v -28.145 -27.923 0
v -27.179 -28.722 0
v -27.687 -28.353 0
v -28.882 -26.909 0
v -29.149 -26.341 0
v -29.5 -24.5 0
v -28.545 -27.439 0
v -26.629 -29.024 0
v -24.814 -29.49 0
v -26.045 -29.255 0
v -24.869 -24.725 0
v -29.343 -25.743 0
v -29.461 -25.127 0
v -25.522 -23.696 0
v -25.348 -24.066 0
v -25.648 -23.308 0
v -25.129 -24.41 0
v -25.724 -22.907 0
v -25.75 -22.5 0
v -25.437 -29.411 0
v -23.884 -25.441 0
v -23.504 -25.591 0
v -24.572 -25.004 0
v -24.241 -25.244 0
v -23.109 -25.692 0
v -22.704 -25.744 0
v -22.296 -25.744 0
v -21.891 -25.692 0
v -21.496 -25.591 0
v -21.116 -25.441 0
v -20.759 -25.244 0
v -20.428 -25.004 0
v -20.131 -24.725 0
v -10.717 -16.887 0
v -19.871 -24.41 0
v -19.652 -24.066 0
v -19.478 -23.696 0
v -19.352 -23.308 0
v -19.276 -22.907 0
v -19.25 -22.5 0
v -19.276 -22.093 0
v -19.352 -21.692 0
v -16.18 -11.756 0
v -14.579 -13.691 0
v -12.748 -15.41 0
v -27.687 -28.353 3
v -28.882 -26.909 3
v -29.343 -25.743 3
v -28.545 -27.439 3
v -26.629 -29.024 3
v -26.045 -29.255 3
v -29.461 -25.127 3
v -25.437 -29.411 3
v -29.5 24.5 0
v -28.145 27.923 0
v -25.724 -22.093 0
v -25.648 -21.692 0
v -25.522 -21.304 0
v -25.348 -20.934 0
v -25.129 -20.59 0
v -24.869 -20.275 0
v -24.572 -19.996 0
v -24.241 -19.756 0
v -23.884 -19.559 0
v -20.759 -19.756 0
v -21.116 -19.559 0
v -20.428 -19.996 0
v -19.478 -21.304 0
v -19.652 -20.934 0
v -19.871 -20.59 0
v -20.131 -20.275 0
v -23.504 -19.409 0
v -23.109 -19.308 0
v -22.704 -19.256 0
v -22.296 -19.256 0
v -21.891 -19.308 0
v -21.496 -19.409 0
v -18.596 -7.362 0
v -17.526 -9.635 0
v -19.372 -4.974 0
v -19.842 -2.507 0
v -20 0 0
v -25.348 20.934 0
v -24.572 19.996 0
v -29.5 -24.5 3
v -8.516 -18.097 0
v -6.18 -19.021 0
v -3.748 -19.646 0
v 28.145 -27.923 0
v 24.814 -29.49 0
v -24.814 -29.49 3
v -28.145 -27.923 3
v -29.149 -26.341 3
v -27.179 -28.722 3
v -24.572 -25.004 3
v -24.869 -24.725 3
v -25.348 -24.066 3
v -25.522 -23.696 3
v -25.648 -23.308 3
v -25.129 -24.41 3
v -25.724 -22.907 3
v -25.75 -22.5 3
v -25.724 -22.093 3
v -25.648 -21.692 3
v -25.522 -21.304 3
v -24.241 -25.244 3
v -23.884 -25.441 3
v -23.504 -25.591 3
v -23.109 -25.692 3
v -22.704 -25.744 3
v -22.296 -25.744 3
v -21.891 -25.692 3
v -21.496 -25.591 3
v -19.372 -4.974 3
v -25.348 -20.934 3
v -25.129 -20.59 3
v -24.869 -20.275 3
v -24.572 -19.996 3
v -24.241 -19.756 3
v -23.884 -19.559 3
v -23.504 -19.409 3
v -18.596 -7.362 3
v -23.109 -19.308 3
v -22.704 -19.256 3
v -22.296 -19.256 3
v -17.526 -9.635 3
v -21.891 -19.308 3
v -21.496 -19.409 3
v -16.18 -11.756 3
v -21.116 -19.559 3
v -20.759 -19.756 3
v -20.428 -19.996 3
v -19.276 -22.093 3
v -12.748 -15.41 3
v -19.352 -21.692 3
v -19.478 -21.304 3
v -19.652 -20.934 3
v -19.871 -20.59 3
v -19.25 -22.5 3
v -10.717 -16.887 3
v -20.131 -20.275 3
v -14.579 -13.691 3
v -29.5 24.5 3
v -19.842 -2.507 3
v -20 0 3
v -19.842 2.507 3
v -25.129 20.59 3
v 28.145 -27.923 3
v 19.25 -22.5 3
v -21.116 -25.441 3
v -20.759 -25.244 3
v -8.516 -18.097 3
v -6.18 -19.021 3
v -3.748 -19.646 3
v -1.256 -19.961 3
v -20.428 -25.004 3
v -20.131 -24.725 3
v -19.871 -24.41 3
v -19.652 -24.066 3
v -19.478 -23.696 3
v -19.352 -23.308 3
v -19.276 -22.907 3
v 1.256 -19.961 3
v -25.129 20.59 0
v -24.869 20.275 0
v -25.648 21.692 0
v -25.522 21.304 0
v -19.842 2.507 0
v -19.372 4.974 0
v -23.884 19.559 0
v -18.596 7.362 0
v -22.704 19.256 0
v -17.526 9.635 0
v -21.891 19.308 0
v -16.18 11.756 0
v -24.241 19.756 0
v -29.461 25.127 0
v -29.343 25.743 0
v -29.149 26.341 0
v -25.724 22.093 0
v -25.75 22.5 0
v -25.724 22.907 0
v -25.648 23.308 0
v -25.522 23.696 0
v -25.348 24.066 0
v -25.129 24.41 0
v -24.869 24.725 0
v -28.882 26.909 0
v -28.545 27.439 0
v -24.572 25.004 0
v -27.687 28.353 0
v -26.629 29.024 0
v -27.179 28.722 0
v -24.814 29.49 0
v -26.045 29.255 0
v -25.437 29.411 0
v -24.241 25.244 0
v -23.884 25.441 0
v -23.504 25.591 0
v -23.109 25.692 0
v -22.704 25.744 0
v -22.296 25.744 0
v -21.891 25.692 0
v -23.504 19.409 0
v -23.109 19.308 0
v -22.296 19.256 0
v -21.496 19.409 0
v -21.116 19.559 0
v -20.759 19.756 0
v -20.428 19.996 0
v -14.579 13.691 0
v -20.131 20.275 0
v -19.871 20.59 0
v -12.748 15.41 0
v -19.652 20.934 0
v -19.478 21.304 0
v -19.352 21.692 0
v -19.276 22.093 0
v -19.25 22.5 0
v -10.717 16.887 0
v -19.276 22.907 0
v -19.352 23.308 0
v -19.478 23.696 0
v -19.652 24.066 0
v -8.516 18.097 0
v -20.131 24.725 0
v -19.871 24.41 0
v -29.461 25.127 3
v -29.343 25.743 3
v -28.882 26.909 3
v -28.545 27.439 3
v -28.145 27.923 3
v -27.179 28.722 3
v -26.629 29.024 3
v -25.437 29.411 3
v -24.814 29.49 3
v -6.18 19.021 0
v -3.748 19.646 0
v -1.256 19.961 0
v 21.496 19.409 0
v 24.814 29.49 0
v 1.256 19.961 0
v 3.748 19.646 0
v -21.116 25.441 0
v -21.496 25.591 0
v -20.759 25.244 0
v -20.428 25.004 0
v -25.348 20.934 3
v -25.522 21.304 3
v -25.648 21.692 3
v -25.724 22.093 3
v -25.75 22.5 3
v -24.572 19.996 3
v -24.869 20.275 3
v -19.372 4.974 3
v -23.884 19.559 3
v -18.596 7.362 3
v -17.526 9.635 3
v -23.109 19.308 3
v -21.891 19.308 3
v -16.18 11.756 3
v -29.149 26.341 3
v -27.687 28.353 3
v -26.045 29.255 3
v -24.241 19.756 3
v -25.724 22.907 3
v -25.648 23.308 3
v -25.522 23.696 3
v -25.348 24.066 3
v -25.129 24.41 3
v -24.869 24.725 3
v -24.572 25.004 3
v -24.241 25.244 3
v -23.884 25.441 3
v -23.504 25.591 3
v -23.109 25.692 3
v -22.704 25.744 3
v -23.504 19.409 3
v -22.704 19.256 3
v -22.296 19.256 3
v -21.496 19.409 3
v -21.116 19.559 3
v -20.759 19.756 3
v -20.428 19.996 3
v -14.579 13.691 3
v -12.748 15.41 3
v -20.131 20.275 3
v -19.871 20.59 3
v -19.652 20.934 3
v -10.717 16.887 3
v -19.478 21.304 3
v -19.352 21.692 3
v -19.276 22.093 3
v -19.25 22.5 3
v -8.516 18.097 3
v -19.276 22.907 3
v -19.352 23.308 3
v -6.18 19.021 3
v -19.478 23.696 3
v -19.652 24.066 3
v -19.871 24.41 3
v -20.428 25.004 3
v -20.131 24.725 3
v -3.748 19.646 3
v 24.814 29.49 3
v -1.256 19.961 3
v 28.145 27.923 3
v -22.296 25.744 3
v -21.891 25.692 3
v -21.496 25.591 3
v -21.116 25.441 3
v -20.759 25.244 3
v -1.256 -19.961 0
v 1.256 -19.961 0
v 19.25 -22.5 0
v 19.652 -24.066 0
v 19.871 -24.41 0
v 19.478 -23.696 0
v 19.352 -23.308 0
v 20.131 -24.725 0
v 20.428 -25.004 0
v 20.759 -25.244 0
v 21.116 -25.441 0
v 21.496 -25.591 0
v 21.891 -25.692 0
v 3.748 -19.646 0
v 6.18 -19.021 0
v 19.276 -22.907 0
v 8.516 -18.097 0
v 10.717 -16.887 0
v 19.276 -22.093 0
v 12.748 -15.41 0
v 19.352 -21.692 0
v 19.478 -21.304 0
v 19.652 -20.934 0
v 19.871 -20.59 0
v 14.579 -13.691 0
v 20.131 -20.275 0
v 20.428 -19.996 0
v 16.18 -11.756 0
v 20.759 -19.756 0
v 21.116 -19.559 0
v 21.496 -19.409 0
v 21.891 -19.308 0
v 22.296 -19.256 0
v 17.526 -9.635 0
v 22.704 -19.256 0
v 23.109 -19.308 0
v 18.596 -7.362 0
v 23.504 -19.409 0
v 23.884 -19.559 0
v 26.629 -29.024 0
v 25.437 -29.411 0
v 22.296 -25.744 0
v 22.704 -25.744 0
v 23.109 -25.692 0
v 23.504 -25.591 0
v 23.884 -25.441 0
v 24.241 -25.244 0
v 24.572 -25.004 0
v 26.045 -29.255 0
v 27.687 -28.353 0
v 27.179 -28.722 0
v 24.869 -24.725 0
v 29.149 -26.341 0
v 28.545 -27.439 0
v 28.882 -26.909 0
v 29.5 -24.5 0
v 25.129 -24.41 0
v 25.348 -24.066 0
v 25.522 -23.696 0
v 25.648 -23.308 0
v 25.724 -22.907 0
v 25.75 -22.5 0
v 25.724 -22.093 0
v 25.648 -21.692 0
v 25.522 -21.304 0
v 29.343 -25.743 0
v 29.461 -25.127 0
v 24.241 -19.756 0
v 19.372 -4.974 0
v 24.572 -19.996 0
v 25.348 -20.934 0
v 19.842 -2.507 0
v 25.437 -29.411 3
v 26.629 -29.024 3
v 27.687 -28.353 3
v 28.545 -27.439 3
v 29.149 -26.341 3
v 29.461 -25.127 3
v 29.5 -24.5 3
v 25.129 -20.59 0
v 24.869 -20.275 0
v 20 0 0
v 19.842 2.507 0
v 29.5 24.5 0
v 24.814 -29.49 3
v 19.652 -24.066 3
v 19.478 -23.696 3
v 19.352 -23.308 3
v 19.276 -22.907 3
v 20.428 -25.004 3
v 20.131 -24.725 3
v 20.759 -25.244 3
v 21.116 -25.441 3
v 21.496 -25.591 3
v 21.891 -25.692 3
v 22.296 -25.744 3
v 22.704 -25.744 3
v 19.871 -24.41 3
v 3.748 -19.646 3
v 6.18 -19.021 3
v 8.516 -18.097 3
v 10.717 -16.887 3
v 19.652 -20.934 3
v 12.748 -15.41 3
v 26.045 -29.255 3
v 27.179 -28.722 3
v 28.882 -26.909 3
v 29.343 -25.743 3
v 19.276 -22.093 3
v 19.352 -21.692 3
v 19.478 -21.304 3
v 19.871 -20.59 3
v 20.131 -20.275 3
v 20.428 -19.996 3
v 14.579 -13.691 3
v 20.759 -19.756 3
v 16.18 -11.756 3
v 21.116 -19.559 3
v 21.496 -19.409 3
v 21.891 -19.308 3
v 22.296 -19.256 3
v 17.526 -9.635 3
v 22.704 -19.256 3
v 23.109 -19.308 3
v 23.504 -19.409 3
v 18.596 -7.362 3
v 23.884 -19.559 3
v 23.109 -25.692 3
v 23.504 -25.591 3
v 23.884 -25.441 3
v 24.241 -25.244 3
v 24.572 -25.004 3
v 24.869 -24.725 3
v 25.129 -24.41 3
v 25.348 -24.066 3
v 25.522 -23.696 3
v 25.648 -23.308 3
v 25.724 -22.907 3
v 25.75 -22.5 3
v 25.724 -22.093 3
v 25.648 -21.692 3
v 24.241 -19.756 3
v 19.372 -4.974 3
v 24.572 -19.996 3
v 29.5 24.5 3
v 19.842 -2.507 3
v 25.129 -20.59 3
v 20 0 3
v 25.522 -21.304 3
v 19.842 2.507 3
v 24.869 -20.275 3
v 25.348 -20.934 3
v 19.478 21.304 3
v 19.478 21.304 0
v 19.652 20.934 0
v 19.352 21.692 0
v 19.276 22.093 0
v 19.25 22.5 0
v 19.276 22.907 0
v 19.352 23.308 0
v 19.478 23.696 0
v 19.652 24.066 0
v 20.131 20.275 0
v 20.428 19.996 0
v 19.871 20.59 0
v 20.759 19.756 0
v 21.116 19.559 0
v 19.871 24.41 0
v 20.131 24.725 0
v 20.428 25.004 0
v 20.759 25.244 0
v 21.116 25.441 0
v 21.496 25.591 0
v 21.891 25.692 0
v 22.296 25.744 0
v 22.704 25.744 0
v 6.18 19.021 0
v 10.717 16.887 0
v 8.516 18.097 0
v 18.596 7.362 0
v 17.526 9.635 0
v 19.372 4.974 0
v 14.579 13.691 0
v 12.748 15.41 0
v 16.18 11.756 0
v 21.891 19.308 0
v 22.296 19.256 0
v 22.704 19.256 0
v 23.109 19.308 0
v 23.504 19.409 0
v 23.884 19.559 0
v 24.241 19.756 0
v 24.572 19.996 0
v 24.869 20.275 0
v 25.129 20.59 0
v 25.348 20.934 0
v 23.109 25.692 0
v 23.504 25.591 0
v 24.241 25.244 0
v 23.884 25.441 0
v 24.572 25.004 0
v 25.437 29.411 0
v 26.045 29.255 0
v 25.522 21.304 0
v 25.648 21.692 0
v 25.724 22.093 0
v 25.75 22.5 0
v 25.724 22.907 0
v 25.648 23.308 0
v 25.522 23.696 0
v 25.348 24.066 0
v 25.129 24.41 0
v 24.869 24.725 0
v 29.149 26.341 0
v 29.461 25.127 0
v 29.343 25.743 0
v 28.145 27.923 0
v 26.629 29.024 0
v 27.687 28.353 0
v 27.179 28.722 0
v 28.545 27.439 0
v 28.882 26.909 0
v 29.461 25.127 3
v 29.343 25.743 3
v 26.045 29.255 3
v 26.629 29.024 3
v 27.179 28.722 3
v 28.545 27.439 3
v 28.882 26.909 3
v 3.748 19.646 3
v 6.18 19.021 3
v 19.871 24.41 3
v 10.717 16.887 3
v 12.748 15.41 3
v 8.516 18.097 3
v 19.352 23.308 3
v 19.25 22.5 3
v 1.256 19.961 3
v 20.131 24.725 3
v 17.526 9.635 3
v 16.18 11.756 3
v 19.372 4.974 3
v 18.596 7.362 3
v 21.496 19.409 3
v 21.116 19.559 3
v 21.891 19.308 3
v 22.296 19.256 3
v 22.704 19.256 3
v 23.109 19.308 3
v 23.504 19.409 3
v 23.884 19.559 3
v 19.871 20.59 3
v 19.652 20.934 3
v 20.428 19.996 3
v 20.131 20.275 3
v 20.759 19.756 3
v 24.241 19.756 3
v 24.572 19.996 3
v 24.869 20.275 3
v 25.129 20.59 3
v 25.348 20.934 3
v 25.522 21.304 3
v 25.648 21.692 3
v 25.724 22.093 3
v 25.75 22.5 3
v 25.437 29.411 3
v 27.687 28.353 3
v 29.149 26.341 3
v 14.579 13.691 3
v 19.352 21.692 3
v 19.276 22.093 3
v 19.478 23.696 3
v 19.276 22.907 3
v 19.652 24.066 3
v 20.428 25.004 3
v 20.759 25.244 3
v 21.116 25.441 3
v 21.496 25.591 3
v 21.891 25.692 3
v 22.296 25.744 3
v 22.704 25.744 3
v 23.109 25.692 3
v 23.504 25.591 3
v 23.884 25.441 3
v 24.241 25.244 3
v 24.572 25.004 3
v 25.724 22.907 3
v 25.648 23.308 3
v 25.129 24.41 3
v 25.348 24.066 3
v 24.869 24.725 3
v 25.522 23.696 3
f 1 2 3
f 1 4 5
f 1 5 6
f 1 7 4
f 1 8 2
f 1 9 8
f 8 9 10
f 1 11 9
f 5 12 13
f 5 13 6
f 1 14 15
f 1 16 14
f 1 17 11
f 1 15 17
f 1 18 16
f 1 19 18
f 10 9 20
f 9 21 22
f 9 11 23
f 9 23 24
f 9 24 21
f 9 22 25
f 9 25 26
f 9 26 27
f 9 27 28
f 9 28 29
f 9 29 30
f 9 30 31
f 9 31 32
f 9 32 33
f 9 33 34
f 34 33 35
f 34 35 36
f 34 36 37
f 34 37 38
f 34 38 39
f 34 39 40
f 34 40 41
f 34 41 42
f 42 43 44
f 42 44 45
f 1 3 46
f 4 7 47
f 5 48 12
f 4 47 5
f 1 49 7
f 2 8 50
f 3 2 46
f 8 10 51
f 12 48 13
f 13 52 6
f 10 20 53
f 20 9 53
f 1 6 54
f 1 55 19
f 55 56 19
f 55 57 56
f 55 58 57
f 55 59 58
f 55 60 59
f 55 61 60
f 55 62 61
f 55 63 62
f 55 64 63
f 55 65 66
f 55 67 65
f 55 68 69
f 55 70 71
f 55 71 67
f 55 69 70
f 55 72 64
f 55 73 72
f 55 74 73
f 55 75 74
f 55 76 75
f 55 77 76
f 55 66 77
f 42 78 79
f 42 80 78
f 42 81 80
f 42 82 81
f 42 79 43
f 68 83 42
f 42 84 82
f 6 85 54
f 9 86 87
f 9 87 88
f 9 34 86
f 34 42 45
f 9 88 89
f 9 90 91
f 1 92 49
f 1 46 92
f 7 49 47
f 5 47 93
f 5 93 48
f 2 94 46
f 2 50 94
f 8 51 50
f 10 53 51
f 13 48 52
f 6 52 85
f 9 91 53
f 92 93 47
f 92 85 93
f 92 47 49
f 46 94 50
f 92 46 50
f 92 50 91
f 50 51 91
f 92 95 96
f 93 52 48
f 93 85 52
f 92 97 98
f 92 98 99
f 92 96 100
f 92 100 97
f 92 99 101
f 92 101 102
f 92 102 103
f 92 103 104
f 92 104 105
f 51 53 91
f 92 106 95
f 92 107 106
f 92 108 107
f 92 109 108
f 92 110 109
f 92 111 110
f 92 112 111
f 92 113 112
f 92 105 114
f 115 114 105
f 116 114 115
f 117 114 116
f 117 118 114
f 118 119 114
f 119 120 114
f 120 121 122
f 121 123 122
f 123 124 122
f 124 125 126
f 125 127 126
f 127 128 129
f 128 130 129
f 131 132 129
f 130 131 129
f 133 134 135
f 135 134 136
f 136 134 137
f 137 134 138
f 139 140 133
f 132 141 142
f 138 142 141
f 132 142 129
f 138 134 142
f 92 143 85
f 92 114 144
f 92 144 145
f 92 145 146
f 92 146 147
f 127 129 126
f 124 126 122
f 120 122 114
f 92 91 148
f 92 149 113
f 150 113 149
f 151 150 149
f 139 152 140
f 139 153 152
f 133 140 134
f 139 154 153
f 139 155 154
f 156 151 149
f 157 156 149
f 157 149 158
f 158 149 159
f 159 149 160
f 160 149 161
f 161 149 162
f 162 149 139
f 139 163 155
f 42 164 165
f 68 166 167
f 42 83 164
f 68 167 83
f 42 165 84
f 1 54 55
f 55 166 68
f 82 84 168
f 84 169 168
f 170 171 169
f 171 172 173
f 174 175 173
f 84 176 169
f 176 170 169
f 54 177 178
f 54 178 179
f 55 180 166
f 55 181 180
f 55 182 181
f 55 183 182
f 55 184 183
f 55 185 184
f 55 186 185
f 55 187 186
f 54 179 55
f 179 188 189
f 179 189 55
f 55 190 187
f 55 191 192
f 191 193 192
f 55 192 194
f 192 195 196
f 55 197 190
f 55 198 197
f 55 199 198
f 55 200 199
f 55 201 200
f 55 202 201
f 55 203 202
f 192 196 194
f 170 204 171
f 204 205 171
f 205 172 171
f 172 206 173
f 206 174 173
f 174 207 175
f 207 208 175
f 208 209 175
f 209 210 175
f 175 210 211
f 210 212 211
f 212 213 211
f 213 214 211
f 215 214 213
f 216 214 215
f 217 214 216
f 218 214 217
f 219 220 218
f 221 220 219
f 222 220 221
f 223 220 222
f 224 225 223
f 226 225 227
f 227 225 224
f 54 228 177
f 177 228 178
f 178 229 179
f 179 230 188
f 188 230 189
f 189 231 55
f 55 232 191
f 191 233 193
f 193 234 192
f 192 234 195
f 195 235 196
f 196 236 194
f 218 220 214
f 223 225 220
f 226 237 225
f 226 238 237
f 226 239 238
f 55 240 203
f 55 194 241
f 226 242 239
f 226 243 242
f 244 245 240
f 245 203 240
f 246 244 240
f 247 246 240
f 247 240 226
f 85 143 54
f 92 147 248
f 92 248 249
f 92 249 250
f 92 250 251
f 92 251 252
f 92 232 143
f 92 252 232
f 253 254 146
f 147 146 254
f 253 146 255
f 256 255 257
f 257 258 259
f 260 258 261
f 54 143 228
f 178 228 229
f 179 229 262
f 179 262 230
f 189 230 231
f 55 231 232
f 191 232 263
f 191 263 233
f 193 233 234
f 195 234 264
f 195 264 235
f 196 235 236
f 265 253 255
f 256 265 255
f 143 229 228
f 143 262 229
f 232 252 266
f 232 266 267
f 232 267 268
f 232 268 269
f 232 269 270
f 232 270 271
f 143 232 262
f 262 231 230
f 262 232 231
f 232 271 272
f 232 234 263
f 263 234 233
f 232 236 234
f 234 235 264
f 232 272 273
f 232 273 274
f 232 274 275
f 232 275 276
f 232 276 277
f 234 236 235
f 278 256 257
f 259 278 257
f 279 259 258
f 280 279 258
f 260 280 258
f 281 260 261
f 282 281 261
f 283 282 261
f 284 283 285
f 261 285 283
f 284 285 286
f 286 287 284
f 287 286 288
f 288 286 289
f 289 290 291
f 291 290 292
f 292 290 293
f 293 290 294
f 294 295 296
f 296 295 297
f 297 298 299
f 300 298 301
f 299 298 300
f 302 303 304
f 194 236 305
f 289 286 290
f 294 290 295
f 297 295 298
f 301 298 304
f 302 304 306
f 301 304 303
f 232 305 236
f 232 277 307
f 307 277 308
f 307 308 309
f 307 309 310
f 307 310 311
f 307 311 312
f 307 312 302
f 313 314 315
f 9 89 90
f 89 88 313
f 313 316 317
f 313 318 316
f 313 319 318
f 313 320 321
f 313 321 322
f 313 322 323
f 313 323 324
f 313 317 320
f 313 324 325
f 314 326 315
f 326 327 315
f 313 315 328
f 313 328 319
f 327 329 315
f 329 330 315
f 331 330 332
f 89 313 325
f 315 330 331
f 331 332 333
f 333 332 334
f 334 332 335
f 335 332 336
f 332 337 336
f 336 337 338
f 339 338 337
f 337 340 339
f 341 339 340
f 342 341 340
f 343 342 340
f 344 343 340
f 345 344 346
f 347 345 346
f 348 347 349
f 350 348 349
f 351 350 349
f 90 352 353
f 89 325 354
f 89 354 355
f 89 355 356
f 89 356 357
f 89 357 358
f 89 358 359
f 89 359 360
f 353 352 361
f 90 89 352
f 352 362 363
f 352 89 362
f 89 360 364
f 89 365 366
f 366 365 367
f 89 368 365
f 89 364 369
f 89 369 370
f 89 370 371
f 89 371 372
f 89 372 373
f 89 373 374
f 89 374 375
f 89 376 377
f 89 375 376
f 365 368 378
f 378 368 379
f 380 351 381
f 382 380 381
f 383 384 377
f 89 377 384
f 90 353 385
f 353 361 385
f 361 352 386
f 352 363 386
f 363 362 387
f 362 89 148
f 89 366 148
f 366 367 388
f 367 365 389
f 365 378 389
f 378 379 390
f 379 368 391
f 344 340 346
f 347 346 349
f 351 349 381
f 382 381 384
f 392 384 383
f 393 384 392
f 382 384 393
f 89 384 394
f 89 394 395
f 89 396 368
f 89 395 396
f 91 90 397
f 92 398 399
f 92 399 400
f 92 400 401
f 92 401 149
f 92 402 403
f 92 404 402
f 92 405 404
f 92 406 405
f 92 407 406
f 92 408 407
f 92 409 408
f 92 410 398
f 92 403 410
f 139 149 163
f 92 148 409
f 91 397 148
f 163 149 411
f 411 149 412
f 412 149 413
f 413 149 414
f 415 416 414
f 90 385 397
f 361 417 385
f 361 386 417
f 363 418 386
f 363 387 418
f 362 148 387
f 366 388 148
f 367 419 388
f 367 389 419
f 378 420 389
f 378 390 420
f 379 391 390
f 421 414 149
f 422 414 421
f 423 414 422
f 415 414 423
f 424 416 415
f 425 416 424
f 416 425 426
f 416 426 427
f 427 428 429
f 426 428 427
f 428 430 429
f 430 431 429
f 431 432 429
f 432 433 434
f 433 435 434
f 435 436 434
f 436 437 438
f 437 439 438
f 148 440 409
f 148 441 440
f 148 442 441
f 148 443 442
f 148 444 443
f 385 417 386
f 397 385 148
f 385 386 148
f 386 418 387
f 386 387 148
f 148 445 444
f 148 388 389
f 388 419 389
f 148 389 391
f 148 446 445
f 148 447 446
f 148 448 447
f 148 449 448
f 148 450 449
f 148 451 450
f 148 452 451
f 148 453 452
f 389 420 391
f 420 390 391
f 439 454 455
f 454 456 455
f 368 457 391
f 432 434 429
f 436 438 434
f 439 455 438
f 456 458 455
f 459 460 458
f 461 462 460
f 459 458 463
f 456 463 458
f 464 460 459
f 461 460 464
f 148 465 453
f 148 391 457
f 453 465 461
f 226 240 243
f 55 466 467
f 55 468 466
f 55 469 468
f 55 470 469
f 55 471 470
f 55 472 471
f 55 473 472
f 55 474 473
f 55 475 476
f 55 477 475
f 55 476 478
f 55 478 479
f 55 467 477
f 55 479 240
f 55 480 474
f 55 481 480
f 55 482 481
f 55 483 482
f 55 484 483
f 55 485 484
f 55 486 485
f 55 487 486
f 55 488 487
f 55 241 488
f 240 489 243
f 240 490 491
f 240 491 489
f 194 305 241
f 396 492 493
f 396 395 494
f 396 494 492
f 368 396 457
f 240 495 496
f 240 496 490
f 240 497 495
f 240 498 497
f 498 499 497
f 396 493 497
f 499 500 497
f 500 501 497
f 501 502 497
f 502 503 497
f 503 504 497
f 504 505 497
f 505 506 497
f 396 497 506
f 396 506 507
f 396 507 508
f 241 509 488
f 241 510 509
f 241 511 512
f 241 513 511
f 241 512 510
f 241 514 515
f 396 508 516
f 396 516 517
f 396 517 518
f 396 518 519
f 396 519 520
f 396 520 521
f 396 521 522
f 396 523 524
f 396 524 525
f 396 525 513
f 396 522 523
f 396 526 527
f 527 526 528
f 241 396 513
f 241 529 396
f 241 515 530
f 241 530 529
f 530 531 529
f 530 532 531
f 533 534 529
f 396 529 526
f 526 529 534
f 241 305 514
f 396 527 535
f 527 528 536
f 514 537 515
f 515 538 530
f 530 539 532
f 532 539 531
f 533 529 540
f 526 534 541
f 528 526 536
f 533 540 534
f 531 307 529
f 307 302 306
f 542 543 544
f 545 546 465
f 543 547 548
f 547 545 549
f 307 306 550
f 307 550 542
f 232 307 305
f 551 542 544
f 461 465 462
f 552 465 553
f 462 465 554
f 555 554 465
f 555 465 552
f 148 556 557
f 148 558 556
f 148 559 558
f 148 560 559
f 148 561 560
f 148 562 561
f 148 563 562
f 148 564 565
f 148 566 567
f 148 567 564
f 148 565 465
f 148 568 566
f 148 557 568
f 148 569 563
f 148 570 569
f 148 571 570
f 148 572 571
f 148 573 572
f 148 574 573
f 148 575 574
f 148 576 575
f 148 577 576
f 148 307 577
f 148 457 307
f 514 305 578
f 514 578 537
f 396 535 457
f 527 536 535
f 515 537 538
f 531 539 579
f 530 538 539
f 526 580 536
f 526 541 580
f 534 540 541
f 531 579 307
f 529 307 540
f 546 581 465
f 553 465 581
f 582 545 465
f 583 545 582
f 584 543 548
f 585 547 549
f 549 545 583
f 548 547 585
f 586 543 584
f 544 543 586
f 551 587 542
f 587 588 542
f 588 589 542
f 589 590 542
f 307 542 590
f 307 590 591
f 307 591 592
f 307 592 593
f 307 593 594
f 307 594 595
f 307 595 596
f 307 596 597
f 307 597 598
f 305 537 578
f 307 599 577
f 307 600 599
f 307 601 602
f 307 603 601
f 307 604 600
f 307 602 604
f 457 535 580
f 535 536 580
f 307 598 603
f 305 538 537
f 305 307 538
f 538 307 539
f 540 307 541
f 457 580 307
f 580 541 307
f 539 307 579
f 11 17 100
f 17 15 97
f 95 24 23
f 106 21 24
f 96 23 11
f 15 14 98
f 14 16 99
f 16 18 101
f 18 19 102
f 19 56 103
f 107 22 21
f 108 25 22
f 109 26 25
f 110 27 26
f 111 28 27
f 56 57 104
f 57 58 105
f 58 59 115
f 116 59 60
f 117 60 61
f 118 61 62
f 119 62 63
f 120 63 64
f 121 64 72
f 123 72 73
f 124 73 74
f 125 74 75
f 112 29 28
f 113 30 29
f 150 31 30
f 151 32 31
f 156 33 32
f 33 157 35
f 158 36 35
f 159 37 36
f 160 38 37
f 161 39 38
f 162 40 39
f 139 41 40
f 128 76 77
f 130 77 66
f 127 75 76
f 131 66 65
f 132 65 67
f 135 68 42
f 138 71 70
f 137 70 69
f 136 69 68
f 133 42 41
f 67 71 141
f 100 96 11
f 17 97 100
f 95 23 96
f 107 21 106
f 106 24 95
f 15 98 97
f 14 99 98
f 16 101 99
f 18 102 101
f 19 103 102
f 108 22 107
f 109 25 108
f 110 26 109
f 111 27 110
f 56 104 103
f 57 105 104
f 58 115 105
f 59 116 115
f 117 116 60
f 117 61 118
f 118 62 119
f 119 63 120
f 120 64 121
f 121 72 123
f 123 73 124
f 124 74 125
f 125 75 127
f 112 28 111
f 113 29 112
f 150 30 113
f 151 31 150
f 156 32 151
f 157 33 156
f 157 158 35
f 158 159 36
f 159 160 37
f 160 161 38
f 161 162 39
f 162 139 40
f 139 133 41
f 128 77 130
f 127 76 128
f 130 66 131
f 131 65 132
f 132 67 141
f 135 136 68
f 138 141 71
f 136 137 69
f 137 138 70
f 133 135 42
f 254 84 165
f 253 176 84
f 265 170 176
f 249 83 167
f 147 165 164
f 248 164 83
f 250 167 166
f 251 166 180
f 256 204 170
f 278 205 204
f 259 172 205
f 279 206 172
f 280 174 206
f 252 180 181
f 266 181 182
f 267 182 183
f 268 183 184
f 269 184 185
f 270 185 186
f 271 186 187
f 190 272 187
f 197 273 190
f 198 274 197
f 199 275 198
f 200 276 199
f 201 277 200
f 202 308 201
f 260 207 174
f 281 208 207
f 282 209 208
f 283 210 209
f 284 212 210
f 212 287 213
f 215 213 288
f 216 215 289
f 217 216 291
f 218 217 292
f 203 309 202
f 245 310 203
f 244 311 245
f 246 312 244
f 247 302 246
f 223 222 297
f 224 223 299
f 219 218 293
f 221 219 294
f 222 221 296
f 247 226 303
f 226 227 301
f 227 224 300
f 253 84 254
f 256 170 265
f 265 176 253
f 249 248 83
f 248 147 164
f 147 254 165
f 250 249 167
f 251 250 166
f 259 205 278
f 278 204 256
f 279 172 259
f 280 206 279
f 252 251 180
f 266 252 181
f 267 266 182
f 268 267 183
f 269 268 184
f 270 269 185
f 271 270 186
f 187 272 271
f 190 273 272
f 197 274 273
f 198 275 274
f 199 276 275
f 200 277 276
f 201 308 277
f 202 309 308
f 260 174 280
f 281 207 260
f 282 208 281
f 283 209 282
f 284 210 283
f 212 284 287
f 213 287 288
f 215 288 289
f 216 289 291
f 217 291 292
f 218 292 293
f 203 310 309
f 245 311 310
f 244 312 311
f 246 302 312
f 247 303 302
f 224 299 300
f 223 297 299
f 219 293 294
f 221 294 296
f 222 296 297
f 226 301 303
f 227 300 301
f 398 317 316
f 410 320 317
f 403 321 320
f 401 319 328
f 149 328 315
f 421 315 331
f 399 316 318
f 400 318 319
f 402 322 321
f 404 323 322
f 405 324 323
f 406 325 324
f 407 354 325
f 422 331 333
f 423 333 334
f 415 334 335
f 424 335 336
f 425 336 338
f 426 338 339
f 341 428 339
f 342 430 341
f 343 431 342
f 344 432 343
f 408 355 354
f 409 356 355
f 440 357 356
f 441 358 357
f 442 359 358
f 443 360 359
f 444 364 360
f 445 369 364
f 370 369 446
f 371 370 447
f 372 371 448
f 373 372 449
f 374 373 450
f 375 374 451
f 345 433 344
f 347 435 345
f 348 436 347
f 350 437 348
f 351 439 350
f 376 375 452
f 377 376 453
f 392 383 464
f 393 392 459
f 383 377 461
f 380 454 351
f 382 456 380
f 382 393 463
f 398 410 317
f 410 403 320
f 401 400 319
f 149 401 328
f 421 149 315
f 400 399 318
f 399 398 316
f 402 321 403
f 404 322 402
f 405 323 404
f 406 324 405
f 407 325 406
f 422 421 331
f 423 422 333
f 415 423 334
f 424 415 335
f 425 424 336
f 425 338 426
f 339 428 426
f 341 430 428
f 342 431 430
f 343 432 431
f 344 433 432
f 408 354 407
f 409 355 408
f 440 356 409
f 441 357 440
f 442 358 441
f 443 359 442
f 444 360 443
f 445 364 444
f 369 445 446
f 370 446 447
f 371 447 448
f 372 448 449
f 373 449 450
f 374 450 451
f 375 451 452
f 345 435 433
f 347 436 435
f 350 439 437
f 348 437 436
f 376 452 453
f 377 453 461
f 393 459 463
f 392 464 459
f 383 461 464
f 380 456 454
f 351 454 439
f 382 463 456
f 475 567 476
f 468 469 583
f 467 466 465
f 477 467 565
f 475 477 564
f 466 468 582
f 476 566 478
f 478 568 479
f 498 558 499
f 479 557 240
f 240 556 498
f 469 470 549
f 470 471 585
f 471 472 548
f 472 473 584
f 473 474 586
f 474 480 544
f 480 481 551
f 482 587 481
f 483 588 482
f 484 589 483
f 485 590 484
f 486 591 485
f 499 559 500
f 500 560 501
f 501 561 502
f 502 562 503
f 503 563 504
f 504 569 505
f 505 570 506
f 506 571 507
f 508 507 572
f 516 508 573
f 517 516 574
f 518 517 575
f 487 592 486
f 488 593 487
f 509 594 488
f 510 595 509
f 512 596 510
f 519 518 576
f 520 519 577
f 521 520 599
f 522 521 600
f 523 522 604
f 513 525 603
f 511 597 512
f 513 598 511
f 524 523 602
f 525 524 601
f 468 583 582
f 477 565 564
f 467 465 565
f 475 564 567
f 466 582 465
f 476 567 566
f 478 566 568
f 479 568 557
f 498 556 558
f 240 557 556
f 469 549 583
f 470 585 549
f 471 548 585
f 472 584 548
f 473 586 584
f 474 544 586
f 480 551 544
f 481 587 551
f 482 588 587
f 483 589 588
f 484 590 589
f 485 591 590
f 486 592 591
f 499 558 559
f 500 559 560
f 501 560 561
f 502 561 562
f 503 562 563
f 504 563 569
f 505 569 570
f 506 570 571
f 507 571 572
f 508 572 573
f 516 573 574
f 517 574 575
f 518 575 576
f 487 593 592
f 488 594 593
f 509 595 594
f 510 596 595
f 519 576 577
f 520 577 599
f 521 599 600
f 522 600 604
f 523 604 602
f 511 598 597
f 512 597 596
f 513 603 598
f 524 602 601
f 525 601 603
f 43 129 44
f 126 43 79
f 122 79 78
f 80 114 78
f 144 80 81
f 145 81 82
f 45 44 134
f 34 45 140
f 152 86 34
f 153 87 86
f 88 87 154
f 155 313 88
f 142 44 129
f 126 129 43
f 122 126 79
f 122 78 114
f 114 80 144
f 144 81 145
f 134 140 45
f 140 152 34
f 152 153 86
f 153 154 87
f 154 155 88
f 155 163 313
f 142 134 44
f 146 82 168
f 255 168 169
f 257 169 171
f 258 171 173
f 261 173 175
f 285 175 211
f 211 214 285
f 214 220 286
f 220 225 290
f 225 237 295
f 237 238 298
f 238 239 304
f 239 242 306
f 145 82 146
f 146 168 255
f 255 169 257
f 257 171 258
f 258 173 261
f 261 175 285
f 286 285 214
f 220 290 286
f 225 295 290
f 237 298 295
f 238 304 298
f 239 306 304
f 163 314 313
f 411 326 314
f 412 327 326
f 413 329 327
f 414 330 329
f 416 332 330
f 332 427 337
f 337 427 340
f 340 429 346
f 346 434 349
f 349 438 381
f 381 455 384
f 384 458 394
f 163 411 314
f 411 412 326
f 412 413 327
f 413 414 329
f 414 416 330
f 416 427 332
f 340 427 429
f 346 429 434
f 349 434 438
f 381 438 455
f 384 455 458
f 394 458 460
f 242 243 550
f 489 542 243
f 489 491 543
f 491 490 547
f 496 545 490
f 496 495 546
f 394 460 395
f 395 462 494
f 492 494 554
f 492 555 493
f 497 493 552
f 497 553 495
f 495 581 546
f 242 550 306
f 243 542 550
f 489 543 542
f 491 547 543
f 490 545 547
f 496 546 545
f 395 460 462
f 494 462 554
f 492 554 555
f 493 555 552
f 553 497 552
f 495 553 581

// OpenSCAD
$fn = 50;

difference() {
	union() {
		hull() {
			translate(v = [-24.5, 24.5, 0]) {
				cylinder(h = 3, r = 5);
			}
			translate(v = [24.5, 24.5, 0]) {
				cylinder(h = 3, r = 5);
			}
			translate(v = [-24.5, -24.5, 0]) {
				cylinder(h = 3, r = 5);
			}
			translate(v = [24.5, -24.5, 0]) {
				cylinder(h = 3, r = 5);
			}
		}
	}
	union() {
		translate(v = [-22.5, -22.5, -100.0]) {
			cylinder(h = 200, r = 3.25);
		}
		translate(v = [-22.5, 22.5, -100.0]) {
			cylinder(h = 200, r = 3.25);
		}
		translate(v = [22.5, -22.5, -100.0]) {
			cylinder(h = 200, r = 3.25);
		}
		translate(v = [22.5, 22.5, -100.0]) {
			cylinder(h = 200, r = 3.25);
		}
		translate(v = [-22.5, -22.5, -100.0]) {
			cylinder(h = 200, r = 1.8);
		}
		translate(v = [-22.5, 22.5, -100.0]) {
			cylinder(h = 200, r = 1.8);
		}
		translate(v = [22.5, -22.5, -100.0]) {
			cylinder(h = 200, r = 1.8);
		}
		translate(v = [22.5, 22.5, -100.0]) {
			cylinder(h = 200, r = 1.8);
		}
		cylinder(h = 3, r = 20.0);
	}
}
